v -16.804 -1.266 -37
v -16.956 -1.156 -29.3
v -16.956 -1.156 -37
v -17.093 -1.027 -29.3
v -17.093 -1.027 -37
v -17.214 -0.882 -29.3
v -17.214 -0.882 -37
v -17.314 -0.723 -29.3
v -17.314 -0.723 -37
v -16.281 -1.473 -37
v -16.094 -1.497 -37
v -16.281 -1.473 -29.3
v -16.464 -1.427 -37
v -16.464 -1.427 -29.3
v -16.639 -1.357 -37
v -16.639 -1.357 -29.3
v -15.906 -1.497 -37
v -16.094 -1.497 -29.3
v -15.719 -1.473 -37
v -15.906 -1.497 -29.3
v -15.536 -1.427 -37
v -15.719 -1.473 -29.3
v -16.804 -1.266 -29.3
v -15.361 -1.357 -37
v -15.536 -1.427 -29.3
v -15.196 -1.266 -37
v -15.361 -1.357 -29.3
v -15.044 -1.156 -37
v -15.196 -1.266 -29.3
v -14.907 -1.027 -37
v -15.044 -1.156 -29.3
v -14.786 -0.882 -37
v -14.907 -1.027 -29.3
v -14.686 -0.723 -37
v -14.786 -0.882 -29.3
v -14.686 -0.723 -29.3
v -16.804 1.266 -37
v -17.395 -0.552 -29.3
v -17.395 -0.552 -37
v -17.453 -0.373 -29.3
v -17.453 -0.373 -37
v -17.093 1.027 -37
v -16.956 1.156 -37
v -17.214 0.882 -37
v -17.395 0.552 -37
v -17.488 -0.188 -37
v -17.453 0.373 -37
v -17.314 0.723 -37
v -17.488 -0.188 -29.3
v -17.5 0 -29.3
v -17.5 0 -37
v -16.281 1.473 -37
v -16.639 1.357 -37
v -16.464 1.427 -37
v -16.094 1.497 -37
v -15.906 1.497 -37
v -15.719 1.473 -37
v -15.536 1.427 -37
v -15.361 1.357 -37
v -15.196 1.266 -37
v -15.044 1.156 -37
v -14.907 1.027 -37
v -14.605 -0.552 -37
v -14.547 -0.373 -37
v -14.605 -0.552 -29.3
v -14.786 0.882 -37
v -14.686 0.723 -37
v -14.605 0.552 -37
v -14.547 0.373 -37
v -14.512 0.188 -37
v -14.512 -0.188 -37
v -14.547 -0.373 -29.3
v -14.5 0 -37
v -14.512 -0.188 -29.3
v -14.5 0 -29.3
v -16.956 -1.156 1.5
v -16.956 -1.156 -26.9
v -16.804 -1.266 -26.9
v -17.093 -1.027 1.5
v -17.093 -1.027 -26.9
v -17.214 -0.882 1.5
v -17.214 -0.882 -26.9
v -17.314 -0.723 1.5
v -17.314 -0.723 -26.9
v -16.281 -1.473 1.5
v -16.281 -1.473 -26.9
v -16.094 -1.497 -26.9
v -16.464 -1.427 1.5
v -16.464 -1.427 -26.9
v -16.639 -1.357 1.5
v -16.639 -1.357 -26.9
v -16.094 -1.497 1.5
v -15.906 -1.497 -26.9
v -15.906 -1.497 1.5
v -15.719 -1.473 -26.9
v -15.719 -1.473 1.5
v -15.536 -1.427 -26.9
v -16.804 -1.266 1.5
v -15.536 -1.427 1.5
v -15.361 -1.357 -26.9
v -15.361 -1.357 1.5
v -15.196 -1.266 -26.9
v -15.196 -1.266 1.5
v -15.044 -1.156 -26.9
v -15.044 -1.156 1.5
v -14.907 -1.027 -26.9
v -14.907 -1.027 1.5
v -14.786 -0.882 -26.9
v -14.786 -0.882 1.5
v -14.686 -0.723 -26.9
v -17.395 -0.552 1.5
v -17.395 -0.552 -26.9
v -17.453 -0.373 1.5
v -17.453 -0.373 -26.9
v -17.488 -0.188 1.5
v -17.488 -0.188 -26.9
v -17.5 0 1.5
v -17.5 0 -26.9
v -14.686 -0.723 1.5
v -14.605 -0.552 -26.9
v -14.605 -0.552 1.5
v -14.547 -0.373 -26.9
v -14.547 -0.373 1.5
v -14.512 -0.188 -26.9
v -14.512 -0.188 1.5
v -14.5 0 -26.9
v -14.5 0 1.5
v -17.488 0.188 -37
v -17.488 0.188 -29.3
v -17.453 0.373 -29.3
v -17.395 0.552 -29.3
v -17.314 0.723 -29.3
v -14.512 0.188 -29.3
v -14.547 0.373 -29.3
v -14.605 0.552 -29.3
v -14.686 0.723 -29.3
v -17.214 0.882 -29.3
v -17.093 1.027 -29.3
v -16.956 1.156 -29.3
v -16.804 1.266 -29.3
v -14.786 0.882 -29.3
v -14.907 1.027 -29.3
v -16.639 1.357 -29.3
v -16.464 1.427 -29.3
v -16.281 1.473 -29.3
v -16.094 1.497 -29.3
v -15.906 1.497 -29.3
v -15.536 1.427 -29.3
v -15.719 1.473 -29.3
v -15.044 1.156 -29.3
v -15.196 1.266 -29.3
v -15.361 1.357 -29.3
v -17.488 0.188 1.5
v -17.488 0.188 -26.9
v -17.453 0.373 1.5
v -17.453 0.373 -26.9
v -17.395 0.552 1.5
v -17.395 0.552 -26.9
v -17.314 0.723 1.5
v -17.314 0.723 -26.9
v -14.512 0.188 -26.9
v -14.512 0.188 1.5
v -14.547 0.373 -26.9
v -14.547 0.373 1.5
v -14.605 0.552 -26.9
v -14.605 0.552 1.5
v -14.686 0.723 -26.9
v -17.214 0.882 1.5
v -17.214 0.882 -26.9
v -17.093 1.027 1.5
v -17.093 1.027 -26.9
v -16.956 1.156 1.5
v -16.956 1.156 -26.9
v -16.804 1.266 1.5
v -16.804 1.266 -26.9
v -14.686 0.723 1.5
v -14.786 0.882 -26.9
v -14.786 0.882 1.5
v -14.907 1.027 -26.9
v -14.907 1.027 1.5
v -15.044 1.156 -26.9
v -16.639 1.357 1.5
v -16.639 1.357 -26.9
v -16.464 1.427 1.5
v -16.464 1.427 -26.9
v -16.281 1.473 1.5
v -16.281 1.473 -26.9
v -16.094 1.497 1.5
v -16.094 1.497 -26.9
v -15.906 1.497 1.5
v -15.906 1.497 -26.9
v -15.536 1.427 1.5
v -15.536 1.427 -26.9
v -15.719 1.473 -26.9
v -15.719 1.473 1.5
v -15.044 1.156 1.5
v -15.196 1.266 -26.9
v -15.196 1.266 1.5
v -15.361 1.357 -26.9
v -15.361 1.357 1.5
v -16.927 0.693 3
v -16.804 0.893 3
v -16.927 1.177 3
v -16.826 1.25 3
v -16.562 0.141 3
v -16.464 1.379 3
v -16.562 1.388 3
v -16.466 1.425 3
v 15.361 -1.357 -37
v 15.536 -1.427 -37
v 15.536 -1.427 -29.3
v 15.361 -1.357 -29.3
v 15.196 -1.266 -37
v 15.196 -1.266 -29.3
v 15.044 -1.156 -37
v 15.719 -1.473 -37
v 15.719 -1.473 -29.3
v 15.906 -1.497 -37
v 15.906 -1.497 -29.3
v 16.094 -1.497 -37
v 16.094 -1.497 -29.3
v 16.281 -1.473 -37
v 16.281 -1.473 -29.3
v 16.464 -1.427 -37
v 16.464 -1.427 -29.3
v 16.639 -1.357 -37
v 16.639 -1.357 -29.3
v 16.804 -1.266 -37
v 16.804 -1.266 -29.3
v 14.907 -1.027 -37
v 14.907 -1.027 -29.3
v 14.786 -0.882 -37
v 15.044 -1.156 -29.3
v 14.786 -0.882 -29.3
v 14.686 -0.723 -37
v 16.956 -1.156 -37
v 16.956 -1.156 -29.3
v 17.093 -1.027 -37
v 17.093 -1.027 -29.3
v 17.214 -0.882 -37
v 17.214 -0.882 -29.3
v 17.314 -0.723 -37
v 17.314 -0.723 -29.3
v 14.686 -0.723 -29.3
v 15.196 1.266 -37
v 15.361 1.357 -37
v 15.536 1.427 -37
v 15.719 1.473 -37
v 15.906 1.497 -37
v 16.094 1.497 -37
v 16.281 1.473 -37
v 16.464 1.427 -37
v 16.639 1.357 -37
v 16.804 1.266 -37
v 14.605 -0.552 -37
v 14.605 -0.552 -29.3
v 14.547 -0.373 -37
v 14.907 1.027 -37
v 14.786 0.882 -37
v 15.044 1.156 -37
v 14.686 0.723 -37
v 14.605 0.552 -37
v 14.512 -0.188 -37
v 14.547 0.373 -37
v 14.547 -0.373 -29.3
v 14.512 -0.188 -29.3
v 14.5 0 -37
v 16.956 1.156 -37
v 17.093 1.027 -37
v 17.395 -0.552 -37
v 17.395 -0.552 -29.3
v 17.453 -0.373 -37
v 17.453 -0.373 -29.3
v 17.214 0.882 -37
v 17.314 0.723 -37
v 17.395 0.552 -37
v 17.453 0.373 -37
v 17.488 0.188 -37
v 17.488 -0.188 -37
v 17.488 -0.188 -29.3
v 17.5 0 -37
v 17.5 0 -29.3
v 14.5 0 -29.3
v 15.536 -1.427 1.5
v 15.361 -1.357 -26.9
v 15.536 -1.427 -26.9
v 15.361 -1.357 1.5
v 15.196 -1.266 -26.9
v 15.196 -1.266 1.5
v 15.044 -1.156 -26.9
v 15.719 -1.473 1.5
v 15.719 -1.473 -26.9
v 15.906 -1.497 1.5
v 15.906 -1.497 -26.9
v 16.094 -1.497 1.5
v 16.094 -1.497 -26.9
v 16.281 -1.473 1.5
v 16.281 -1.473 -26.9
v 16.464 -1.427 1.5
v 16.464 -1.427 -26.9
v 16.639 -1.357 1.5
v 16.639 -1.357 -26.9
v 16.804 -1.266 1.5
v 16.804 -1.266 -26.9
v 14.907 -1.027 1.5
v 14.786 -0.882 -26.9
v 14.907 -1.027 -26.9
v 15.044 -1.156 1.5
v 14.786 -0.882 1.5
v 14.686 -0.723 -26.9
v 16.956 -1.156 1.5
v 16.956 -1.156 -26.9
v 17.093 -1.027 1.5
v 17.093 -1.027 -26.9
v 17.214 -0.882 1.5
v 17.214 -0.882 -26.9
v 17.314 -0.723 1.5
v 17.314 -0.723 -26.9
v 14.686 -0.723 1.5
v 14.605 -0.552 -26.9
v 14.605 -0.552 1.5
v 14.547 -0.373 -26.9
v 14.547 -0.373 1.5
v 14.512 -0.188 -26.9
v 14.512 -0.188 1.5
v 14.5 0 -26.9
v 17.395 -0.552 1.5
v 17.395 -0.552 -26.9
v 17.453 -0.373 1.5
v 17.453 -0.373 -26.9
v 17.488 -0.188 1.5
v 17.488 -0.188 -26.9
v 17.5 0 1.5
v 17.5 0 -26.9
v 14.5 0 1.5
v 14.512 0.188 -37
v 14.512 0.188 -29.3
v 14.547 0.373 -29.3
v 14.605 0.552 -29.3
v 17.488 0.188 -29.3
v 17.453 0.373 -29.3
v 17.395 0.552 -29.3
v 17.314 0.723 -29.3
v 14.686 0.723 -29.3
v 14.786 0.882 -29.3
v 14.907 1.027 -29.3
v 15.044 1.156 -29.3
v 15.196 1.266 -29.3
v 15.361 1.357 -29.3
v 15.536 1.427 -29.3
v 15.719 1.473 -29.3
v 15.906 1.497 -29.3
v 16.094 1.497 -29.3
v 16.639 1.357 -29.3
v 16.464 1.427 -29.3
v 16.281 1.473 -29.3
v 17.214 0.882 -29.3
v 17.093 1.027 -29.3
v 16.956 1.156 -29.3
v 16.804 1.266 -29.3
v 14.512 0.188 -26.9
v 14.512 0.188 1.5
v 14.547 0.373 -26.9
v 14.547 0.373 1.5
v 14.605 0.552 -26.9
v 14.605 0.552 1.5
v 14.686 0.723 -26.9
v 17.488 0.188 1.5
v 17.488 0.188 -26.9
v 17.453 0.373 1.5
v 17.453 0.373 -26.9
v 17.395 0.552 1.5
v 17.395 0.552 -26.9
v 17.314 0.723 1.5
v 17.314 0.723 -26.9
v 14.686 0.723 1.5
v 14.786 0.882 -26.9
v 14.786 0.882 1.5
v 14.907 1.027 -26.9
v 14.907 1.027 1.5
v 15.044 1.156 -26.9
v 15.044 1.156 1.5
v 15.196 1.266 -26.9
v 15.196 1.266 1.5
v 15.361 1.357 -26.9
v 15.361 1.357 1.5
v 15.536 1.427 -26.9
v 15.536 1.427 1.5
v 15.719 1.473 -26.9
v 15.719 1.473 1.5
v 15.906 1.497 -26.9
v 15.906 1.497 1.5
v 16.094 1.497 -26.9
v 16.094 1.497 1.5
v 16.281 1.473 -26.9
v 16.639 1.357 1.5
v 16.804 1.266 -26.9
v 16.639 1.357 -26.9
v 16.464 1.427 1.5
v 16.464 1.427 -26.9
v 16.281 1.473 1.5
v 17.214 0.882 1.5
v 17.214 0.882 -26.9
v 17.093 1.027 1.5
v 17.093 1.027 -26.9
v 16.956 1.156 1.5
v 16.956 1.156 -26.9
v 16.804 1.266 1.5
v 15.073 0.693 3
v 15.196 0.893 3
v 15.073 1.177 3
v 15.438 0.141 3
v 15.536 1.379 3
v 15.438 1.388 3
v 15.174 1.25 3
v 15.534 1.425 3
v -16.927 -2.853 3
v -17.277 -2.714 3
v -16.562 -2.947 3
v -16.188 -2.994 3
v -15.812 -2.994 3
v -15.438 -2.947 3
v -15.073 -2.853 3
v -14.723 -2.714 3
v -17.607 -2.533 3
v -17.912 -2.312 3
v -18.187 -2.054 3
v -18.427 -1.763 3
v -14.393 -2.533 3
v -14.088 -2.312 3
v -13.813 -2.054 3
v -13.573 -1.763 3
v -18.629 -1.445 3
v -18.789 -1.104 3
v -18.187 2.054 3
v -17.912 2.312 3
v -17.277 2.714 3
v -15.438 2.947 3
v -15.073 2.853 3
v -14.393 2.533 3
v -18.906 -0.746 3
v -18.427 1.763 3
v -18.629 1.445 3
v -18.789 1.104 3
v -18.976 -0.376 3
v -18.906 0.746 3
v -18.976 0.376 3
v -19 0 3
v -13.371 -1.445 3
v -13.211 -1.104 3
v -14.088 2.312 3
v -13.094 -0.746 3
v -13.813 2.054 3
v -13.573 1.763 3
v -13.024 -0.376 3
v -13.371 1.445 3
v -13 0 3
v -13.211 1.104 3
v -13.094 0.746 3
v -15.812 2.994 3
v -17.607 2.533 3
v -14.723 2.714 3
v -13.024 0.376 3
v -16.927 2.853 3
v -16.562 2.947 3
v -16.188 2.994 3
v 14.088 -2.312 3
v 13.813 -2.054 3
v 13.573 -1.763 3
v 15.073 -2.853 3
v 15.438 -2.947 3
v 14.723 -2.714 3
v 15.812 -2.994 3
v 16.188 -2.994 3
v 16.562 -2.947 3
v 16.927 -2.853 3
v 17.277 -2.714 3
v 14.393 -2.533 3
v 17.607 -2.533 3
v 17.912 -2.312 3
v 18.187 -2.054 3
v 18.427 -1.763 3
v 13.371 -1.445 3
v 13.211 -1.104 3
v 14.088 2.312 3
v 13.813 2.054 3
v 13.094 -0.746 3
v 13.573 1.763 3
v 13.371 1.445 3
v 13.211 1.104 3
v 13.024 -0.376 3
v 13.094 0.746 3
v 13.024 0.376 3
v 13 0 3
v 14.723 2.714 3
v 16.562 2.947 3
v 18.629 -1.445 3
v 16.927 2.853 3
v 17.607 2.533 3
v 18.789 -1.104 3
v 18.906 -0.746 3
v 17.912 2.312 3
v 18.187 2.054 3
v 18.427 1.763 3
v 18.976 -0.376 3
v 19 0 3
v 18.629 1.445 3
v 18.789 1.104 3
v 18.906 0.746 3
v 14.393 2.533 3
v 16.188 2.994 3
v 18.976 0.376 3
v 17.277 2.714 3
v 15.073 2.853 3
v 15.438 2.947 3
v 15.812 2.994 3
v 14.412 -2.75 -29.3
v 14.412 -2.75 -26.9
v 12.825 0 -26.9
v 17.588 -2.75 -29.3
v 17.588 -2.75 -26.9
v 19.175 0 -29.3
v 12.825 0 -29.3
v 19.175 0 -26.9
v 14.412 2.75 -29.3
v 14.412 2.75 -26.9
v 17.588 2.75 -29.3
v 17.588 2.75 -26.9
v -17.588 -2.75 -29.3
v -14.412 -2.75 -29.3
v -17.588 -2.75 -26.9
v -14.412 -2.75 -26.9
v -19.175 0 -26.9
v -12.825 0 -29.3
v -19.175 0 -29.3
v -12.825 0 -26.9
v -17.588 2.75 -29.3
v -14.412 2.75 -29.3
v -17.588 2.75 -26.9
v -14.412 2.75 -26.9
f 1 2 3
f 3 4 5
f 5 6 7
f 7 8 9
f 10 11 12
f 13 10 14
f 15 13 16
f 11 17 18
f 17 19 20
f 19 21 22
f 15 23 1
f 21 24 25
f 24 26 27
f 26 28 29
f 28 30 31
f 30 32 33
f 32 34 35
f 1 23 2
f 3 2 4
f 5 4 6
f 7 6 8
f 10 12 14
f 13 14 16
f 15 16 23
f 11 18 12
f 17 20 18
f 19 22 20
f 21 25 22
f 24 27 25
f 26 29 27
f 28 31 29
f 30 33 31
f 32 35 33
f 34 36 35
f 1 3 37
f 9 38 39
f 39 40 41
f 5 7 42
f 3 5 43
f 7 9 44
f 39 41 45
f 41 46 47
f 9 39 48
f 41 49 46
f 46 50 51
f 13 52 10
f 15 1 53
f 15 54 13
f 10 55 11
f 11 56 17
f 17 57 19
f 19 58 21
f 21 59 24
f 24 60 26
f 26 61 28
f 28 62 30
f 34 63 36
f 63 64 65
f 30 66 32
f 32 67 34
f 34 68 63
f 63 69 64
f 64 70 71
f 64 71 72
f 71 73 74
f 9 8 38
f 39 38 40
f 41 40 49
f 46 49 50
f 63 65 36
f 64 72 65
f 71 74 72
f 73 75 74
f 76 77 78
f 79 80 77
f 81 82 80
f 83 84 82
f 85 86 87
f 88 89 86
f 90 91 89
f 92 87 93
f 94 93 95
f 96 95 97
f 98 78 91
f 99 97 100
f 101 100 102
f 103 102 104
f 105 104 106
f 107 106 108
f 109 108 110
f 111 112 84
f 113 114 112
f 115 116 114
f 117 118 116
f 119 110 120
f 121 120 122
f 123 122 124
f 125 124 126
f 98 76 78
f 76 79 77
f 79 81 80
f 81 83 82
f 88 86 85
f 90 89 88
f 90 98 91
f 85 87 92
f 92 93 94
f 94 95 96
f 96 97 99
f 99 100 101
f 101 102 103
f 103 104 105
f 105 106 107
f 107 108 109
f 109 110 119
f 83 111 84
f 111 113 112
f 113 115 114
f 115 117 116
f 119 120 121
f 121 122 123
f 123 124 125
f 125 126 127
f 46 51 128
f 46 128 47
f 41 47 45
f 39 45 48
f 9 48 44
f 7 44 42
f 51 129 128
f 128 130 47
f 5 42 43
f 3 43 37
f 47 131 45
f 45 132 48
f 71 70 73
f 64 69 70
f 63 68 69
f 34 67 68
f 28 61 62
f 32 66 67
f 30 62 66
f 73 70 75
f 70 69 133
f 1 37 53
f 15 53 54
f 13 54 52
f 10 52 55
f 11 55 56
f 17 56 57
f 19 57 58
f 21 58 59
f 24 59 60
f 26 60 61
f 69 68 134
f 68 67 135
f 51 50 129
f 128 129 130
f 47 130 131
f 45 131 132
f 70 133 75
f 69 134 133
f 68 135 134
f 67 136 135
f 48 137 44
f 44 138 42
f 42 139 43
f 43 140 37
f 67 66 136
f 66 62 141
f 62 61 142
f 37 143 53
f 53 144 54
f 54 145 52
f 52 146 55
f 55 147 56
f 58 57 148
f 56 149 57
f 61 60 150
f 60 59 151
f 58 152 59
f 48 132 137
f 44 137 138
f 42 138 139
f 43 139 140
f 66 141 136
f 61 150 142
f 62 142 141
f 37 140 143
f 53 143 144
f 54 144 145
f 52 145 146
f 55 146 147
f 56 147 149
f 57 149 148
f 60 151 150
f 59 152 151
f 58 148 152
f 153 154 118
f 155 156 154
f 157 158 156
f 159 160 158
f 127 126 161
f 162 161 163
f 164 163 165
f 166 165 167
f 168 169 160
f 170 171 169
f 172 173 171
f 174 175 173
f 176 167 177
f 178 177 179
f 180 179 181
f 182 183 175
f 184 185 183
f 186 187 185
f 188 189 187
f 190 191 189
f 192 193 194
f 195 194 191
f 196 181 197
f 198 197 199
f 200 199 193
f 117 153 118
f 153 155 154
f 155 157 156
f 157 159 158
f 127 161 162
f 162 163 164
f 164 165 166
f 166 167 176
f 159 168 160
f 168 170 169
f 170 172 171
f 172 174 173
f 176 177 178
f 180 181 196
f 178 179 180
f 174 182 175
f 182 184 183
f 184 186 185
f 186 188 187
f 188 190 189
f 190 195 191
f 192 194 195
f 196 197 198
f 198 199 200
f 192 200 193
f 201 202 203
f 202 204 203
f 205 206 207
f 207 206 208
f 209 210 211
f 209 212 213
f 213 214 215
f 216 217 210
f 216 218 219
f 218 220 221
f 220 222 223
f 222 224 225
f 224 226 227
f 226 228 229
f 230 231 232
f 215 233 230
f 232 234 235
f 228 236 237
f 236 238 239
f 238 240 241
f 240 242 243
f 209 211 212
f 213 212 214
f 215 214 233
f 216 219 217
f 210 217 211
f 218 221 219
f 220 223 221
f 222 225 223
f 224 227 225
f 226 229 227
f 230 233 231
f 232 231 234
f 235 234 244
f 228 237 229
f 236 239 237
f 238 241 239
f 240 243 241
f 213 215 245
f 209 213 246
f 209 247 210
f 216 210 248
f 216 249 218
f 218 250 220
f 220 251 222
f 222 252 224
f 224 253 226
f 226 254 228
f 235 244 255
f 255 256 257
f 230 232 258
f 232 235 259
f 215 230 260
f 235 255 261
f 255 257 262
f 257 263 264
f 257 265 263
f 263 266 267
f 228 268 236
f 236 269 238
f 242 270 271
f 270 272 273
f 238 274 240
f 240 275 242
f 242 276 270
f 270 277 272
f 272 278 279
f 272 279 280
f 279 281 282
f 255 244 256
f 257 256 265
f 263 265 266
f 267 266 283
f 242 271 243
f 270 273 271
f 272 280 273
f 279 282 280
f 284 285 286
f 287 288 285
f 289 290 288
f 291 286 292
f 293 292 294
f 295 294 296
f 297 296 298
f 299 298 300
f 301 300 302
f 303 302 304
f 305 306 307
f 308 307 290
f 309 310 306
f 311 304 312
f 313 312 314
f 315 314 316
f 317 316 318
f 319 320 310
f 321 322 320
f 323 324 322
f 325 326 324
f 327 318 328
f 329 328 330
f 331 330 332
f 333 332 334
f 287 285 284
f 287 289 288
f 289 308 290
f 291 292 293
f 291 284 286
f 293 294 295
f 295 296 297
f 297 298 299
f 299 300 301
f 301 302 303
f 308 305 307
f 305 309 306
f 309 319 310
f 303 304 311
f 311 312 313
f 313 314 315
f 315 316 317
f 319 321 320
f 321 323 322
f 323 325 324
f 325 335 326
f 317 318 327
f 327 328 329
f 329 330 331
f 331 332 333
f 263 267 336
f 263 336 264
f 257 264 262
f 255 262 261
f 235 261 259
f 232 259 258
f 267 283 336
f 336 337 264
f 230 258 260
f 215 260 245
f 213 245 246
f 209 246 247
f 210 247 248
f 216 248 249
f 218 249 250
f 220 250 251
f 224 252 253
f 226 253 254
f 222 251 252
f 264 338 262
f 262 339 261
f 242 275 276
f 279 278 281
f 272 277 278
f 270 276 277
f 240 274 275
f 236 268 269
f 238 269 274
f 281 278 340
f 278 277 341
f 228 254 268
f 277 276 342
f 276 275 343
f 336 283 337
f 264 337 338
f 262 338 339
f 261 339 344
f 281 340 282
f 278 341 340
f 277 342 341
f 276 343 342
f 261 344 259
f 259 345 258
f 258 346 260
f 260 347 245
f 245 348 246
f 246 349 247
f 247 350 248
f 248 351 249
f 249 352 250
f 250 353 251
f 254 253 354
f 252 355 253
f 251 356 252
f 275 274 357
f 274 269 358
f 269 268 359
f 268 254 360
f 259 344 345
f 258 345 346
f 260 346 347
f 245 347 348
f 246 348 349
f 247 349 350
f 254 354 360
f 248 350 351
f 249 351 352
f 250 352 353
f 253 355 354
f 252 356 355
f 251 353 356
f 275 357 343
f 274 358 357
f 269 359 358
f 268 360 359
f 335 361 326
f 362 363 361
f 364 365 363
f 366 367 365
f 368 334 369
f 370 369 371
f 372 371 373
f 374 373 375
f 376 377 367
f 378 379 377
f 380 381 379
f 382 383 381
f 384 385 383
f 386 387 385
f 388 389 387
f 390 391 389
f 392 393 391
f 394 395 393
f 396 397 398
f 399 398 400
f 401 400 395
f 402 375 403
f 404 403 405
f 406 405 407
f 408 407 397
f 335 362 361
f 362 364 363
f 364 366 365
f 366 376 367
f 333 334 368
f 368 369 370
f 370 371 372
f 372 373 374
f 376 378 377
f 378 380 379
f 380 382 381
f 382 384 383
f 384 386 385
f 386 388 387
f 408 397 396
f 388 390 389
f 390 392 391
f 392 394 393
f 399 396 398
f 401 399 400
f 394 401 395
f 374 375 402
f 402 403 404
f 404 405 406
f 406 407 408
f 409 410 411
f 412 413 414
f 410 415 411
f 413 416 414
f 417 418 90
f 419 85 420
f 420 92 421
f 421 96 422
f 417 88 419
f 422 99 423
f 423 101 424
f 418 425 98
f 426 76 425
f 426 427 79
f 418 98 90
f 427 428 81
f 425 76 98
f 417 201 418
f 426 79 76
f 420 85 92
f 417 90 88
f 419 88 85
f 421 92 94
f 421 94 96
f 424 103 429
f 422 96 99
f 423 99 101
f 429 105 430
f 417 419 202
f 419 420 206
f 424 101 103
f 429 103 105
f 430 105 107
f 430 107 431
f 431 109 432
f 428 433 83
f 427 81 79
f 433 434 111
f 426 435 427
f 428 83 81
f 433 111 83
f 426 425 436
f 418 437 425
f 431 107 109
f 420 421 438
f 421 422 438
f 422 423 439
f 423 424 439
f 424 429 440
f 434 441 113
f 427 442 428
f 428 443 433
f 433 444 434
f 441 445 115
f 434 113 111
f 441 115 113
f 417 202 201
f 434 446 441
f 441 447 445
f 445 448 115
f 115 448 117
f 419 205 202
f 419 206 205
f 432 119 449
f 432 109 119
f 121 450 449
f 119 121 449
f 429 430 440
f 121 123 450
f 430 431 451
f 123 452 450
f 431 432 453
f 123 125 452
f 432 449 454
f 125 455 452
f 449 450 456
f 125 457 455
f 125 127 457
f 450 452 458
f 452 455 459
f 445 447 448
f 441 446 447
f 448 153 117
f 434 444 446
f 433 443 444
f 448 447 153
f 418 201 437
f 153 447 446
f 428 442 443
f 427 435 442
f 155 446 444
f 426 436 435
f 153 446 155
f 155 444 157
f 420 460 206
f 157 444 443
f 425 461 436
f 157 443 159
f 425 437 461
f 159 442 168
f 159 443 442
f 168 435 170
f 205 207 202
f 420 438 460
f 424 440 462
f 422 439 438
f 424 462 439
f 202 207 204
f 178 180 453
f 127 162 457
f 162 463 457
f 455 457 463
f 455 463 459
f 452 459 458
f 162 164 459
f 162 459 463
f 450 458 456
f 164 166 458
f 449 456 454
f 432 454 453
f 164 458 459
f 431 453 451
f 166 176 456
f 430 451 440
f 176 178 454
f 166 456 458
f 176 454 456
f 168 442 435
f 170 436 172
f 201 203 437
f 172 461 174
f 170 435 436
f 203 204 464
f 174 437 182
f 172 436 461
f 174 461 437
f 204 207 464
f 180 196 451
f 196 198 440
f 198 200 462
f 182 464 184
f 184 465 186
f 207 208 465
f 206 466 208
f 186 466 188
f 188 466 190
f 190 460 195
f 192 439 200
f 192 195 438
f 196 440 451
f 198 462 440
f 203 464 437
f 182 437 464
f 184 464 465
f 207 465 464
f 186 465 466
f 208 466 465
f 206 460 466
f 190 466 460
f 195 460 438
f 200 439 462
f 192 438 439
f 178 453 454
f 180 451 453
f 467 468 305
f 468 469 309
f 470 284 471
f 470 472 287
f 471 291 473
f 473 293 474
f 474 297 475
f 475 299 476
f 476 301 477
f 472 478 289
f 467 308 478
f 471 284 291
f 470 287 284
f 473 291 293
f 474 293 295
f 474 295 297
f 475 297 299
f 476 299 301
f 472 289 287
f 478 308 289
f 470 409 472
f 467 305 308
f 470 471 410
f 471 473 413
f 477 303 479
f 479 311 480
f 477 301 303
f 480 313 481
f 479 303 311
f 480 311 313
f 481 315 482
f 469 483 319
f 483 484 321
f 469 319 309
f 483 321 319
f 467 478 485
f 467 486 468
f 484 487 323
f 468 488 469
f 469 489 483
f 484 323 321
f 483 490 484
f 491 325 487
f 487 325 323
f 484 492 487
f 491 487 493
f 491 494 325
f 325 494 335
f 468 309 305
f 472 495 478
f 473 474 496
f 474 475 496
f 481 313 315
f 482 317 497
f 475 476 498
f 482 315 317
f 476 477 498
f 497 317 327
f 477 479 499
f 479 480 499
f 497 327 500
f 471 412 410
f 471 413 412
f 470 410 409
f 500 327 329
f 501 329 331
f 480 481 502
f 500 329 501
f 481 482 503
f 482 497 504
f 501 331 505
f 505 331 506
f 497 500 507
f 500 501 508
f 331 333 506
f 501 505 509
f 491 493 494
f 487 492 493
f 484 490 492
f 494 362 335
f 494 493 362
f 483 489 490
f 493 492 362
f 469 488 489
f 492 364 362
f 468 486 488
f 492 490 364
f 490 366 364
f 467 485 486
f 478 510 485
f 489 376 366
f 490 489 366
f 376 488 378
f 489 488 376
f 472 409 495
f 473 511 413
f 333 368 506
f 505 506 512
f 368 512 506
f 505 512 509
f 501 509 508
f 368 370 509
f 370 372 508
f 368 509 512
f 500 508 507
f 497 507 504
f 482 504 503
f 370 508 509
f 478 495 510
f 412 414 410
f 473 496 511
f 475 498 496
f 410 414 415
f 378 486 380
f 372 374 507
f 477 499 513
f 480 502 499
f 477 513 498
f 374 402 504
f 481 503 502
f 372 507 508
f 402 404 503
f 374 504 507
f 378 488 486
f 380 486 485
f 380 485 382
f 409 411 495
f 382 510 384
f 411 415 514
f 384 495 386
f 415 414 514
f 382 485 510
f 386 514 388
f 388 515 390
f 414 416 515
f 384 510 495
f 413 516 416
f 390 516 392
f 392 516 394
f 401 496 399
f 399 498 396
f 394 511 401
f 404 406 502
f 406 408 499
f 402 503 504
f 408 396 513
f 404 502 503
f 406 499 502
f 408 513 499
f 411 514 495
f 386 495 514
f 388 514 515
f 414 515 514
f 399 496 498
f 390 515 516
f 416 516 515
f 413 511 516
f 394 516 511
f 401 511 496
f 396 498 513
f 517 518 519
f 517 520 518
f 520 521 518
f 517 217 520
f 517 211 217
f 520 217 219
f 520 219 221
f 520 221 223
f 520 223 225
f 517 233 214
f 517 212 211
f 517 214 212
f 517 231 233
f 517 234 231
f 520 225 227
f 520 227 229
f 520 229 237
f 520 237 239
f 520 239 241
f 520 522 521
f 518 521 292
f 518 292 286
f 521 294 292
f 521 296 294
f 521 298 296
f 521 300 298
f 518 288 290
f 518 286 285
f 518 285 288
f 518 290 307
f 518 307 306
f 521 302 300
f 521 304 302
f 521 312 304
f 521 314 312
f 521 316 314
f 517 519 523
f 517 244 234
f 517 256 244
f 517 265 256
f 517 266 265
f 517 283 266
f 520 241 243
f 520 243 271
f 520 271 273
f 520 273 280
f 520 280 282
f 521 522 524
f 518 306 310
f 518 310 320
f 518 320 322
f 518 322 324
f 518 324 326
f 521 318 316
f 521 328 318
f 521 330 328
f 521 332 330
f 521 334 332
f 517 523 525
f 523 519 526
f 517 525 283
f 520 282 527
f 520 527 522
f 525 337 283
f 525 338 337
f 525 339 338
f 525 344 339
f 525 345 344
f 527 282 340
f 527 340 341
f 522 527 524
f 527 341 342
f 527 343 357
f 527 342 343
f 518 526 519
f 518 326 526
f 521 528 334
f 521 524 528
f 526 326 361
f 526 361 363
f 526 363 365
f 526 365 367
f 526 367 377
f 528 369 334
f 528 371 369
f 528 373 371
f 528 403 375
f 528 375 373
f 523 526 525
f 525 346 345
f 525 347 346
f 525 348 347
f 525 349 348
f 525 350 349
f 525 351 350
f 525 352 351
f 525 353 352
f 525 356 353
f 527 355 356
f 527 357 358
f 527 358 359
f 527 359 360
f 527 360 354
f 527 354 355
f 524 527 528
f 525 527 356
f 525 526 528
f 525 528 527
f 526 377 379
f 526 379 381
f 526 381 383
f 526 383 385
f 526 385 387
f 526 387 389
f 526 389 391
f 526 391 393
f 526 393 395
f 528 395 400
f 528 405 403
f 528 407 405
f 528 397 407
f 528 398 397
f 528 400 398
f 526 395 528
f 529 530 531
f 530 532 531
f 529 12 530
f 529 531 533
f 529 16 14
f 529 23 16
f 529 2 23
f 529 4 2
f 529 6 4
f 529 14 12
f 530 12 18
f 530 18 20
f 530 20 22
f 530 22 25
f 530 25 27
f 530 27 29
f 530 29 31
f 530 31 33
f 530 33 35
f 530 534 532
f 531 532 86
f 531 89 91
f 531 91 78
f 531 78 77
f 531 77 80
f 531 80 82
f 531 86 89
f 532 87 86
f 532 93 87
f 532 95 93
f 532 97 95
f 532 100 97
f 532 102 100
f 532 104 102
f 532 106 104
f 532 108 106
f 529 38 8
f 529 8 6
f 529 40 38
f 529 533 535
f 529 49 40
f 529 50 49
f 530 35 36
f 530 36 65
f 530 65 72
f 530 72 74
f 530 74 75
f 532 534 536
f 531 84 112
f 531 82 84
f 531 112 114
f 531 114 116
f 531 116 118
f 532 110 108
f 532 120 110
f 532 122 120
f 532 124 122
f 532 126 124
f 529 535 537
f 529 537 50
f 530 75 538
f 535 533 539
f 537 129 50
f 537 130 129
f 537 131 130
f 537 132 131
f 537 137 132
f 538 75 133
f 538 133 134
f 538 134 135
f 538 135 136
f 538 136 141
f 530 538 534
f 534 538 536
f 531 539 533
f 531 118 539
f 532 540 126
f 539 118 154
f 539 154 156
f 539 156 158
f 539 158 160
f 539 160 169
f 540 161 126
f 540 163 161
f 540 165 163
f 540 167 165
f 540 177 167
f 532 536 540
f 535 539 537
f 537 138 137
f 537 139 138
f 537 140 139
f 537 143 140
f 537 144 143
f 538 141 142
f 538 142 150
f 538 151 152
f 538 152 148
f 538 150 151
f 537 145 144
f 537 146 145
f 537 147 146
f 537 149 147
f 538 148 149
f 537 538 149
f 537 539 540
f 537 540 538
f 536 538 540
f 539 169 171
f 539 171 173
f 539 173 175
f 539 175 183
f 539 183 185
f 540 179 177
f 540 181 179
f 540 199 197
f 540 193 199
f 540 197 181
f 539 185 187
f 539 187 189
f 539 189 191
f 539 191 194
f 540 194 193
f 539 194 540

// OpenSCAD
$fn = 50;

difference() {
	union() {
		translate(v = [-16, 0, 3]) {
			rotate(a = [0, 0, 0]) {
				difference() {
					union() {
						translate(v = [0, 0, -40.0]) {
							cylinder(h = 40, r = 1.5);
						}
						translate(v = [0, 0, -1.5]) {
							cylinder(h = 1.5, r1 = 1.5, r2 = 3);
						}
					}
					union();
				}
			}
		}
		translate(v = [-16, 0, -29.3]) {
			rotate(a = [0, 0, 0]) {
				difference() {
					union() {
						linear_extrude(height = 2.4) {
							polygon(points = [[3.1754264805429417, 0.0], [1.5877132402714713, 2.75], [-1.5877132402714702, 2.7500000000000004], [-3.1754264805429417, 3.888775875324659e-16], [-1.5877132402714722, -2.7499999999999996], [1.5877132402714687, -2.7500000000000013]]);
						}
					}
					union();
				}
			}
		}
		translate(v = [16, 0, 3]) {
			rotate(a = [0, 0, 0]) {
				difference() {
					union() {
						translate(v = [0, 0, -40.0]) {
							cylinder(h = 40, r = 1.5);
						}
						translate(v = [0, 0, -1.5]) {
							cylinder(h = 1.5, r1 = 1.5, r2 = 3);
						}
					}
					union();
				}
			}
		}
		translate(v = [16, 0, -29.3]) {
			rotate(a = [0, 0, 0]) {
				difference() {
					union() {
						linear_extrude(height = 2.4) {
							polygon(points = [[3.1754264805429417, 0.0], [1.5877132402714713, 2.75], [-1.5877132402714702, 2.7500000000000004], [-3.1754264805429417, 3.888775875324659e-16], [-1.5877132402714722, -2.7499999999999996], [1.5877132402714687, -2.7500000000000013]]);
						}
					}
					union();
				}
			}
		}
	}
	union();
}
